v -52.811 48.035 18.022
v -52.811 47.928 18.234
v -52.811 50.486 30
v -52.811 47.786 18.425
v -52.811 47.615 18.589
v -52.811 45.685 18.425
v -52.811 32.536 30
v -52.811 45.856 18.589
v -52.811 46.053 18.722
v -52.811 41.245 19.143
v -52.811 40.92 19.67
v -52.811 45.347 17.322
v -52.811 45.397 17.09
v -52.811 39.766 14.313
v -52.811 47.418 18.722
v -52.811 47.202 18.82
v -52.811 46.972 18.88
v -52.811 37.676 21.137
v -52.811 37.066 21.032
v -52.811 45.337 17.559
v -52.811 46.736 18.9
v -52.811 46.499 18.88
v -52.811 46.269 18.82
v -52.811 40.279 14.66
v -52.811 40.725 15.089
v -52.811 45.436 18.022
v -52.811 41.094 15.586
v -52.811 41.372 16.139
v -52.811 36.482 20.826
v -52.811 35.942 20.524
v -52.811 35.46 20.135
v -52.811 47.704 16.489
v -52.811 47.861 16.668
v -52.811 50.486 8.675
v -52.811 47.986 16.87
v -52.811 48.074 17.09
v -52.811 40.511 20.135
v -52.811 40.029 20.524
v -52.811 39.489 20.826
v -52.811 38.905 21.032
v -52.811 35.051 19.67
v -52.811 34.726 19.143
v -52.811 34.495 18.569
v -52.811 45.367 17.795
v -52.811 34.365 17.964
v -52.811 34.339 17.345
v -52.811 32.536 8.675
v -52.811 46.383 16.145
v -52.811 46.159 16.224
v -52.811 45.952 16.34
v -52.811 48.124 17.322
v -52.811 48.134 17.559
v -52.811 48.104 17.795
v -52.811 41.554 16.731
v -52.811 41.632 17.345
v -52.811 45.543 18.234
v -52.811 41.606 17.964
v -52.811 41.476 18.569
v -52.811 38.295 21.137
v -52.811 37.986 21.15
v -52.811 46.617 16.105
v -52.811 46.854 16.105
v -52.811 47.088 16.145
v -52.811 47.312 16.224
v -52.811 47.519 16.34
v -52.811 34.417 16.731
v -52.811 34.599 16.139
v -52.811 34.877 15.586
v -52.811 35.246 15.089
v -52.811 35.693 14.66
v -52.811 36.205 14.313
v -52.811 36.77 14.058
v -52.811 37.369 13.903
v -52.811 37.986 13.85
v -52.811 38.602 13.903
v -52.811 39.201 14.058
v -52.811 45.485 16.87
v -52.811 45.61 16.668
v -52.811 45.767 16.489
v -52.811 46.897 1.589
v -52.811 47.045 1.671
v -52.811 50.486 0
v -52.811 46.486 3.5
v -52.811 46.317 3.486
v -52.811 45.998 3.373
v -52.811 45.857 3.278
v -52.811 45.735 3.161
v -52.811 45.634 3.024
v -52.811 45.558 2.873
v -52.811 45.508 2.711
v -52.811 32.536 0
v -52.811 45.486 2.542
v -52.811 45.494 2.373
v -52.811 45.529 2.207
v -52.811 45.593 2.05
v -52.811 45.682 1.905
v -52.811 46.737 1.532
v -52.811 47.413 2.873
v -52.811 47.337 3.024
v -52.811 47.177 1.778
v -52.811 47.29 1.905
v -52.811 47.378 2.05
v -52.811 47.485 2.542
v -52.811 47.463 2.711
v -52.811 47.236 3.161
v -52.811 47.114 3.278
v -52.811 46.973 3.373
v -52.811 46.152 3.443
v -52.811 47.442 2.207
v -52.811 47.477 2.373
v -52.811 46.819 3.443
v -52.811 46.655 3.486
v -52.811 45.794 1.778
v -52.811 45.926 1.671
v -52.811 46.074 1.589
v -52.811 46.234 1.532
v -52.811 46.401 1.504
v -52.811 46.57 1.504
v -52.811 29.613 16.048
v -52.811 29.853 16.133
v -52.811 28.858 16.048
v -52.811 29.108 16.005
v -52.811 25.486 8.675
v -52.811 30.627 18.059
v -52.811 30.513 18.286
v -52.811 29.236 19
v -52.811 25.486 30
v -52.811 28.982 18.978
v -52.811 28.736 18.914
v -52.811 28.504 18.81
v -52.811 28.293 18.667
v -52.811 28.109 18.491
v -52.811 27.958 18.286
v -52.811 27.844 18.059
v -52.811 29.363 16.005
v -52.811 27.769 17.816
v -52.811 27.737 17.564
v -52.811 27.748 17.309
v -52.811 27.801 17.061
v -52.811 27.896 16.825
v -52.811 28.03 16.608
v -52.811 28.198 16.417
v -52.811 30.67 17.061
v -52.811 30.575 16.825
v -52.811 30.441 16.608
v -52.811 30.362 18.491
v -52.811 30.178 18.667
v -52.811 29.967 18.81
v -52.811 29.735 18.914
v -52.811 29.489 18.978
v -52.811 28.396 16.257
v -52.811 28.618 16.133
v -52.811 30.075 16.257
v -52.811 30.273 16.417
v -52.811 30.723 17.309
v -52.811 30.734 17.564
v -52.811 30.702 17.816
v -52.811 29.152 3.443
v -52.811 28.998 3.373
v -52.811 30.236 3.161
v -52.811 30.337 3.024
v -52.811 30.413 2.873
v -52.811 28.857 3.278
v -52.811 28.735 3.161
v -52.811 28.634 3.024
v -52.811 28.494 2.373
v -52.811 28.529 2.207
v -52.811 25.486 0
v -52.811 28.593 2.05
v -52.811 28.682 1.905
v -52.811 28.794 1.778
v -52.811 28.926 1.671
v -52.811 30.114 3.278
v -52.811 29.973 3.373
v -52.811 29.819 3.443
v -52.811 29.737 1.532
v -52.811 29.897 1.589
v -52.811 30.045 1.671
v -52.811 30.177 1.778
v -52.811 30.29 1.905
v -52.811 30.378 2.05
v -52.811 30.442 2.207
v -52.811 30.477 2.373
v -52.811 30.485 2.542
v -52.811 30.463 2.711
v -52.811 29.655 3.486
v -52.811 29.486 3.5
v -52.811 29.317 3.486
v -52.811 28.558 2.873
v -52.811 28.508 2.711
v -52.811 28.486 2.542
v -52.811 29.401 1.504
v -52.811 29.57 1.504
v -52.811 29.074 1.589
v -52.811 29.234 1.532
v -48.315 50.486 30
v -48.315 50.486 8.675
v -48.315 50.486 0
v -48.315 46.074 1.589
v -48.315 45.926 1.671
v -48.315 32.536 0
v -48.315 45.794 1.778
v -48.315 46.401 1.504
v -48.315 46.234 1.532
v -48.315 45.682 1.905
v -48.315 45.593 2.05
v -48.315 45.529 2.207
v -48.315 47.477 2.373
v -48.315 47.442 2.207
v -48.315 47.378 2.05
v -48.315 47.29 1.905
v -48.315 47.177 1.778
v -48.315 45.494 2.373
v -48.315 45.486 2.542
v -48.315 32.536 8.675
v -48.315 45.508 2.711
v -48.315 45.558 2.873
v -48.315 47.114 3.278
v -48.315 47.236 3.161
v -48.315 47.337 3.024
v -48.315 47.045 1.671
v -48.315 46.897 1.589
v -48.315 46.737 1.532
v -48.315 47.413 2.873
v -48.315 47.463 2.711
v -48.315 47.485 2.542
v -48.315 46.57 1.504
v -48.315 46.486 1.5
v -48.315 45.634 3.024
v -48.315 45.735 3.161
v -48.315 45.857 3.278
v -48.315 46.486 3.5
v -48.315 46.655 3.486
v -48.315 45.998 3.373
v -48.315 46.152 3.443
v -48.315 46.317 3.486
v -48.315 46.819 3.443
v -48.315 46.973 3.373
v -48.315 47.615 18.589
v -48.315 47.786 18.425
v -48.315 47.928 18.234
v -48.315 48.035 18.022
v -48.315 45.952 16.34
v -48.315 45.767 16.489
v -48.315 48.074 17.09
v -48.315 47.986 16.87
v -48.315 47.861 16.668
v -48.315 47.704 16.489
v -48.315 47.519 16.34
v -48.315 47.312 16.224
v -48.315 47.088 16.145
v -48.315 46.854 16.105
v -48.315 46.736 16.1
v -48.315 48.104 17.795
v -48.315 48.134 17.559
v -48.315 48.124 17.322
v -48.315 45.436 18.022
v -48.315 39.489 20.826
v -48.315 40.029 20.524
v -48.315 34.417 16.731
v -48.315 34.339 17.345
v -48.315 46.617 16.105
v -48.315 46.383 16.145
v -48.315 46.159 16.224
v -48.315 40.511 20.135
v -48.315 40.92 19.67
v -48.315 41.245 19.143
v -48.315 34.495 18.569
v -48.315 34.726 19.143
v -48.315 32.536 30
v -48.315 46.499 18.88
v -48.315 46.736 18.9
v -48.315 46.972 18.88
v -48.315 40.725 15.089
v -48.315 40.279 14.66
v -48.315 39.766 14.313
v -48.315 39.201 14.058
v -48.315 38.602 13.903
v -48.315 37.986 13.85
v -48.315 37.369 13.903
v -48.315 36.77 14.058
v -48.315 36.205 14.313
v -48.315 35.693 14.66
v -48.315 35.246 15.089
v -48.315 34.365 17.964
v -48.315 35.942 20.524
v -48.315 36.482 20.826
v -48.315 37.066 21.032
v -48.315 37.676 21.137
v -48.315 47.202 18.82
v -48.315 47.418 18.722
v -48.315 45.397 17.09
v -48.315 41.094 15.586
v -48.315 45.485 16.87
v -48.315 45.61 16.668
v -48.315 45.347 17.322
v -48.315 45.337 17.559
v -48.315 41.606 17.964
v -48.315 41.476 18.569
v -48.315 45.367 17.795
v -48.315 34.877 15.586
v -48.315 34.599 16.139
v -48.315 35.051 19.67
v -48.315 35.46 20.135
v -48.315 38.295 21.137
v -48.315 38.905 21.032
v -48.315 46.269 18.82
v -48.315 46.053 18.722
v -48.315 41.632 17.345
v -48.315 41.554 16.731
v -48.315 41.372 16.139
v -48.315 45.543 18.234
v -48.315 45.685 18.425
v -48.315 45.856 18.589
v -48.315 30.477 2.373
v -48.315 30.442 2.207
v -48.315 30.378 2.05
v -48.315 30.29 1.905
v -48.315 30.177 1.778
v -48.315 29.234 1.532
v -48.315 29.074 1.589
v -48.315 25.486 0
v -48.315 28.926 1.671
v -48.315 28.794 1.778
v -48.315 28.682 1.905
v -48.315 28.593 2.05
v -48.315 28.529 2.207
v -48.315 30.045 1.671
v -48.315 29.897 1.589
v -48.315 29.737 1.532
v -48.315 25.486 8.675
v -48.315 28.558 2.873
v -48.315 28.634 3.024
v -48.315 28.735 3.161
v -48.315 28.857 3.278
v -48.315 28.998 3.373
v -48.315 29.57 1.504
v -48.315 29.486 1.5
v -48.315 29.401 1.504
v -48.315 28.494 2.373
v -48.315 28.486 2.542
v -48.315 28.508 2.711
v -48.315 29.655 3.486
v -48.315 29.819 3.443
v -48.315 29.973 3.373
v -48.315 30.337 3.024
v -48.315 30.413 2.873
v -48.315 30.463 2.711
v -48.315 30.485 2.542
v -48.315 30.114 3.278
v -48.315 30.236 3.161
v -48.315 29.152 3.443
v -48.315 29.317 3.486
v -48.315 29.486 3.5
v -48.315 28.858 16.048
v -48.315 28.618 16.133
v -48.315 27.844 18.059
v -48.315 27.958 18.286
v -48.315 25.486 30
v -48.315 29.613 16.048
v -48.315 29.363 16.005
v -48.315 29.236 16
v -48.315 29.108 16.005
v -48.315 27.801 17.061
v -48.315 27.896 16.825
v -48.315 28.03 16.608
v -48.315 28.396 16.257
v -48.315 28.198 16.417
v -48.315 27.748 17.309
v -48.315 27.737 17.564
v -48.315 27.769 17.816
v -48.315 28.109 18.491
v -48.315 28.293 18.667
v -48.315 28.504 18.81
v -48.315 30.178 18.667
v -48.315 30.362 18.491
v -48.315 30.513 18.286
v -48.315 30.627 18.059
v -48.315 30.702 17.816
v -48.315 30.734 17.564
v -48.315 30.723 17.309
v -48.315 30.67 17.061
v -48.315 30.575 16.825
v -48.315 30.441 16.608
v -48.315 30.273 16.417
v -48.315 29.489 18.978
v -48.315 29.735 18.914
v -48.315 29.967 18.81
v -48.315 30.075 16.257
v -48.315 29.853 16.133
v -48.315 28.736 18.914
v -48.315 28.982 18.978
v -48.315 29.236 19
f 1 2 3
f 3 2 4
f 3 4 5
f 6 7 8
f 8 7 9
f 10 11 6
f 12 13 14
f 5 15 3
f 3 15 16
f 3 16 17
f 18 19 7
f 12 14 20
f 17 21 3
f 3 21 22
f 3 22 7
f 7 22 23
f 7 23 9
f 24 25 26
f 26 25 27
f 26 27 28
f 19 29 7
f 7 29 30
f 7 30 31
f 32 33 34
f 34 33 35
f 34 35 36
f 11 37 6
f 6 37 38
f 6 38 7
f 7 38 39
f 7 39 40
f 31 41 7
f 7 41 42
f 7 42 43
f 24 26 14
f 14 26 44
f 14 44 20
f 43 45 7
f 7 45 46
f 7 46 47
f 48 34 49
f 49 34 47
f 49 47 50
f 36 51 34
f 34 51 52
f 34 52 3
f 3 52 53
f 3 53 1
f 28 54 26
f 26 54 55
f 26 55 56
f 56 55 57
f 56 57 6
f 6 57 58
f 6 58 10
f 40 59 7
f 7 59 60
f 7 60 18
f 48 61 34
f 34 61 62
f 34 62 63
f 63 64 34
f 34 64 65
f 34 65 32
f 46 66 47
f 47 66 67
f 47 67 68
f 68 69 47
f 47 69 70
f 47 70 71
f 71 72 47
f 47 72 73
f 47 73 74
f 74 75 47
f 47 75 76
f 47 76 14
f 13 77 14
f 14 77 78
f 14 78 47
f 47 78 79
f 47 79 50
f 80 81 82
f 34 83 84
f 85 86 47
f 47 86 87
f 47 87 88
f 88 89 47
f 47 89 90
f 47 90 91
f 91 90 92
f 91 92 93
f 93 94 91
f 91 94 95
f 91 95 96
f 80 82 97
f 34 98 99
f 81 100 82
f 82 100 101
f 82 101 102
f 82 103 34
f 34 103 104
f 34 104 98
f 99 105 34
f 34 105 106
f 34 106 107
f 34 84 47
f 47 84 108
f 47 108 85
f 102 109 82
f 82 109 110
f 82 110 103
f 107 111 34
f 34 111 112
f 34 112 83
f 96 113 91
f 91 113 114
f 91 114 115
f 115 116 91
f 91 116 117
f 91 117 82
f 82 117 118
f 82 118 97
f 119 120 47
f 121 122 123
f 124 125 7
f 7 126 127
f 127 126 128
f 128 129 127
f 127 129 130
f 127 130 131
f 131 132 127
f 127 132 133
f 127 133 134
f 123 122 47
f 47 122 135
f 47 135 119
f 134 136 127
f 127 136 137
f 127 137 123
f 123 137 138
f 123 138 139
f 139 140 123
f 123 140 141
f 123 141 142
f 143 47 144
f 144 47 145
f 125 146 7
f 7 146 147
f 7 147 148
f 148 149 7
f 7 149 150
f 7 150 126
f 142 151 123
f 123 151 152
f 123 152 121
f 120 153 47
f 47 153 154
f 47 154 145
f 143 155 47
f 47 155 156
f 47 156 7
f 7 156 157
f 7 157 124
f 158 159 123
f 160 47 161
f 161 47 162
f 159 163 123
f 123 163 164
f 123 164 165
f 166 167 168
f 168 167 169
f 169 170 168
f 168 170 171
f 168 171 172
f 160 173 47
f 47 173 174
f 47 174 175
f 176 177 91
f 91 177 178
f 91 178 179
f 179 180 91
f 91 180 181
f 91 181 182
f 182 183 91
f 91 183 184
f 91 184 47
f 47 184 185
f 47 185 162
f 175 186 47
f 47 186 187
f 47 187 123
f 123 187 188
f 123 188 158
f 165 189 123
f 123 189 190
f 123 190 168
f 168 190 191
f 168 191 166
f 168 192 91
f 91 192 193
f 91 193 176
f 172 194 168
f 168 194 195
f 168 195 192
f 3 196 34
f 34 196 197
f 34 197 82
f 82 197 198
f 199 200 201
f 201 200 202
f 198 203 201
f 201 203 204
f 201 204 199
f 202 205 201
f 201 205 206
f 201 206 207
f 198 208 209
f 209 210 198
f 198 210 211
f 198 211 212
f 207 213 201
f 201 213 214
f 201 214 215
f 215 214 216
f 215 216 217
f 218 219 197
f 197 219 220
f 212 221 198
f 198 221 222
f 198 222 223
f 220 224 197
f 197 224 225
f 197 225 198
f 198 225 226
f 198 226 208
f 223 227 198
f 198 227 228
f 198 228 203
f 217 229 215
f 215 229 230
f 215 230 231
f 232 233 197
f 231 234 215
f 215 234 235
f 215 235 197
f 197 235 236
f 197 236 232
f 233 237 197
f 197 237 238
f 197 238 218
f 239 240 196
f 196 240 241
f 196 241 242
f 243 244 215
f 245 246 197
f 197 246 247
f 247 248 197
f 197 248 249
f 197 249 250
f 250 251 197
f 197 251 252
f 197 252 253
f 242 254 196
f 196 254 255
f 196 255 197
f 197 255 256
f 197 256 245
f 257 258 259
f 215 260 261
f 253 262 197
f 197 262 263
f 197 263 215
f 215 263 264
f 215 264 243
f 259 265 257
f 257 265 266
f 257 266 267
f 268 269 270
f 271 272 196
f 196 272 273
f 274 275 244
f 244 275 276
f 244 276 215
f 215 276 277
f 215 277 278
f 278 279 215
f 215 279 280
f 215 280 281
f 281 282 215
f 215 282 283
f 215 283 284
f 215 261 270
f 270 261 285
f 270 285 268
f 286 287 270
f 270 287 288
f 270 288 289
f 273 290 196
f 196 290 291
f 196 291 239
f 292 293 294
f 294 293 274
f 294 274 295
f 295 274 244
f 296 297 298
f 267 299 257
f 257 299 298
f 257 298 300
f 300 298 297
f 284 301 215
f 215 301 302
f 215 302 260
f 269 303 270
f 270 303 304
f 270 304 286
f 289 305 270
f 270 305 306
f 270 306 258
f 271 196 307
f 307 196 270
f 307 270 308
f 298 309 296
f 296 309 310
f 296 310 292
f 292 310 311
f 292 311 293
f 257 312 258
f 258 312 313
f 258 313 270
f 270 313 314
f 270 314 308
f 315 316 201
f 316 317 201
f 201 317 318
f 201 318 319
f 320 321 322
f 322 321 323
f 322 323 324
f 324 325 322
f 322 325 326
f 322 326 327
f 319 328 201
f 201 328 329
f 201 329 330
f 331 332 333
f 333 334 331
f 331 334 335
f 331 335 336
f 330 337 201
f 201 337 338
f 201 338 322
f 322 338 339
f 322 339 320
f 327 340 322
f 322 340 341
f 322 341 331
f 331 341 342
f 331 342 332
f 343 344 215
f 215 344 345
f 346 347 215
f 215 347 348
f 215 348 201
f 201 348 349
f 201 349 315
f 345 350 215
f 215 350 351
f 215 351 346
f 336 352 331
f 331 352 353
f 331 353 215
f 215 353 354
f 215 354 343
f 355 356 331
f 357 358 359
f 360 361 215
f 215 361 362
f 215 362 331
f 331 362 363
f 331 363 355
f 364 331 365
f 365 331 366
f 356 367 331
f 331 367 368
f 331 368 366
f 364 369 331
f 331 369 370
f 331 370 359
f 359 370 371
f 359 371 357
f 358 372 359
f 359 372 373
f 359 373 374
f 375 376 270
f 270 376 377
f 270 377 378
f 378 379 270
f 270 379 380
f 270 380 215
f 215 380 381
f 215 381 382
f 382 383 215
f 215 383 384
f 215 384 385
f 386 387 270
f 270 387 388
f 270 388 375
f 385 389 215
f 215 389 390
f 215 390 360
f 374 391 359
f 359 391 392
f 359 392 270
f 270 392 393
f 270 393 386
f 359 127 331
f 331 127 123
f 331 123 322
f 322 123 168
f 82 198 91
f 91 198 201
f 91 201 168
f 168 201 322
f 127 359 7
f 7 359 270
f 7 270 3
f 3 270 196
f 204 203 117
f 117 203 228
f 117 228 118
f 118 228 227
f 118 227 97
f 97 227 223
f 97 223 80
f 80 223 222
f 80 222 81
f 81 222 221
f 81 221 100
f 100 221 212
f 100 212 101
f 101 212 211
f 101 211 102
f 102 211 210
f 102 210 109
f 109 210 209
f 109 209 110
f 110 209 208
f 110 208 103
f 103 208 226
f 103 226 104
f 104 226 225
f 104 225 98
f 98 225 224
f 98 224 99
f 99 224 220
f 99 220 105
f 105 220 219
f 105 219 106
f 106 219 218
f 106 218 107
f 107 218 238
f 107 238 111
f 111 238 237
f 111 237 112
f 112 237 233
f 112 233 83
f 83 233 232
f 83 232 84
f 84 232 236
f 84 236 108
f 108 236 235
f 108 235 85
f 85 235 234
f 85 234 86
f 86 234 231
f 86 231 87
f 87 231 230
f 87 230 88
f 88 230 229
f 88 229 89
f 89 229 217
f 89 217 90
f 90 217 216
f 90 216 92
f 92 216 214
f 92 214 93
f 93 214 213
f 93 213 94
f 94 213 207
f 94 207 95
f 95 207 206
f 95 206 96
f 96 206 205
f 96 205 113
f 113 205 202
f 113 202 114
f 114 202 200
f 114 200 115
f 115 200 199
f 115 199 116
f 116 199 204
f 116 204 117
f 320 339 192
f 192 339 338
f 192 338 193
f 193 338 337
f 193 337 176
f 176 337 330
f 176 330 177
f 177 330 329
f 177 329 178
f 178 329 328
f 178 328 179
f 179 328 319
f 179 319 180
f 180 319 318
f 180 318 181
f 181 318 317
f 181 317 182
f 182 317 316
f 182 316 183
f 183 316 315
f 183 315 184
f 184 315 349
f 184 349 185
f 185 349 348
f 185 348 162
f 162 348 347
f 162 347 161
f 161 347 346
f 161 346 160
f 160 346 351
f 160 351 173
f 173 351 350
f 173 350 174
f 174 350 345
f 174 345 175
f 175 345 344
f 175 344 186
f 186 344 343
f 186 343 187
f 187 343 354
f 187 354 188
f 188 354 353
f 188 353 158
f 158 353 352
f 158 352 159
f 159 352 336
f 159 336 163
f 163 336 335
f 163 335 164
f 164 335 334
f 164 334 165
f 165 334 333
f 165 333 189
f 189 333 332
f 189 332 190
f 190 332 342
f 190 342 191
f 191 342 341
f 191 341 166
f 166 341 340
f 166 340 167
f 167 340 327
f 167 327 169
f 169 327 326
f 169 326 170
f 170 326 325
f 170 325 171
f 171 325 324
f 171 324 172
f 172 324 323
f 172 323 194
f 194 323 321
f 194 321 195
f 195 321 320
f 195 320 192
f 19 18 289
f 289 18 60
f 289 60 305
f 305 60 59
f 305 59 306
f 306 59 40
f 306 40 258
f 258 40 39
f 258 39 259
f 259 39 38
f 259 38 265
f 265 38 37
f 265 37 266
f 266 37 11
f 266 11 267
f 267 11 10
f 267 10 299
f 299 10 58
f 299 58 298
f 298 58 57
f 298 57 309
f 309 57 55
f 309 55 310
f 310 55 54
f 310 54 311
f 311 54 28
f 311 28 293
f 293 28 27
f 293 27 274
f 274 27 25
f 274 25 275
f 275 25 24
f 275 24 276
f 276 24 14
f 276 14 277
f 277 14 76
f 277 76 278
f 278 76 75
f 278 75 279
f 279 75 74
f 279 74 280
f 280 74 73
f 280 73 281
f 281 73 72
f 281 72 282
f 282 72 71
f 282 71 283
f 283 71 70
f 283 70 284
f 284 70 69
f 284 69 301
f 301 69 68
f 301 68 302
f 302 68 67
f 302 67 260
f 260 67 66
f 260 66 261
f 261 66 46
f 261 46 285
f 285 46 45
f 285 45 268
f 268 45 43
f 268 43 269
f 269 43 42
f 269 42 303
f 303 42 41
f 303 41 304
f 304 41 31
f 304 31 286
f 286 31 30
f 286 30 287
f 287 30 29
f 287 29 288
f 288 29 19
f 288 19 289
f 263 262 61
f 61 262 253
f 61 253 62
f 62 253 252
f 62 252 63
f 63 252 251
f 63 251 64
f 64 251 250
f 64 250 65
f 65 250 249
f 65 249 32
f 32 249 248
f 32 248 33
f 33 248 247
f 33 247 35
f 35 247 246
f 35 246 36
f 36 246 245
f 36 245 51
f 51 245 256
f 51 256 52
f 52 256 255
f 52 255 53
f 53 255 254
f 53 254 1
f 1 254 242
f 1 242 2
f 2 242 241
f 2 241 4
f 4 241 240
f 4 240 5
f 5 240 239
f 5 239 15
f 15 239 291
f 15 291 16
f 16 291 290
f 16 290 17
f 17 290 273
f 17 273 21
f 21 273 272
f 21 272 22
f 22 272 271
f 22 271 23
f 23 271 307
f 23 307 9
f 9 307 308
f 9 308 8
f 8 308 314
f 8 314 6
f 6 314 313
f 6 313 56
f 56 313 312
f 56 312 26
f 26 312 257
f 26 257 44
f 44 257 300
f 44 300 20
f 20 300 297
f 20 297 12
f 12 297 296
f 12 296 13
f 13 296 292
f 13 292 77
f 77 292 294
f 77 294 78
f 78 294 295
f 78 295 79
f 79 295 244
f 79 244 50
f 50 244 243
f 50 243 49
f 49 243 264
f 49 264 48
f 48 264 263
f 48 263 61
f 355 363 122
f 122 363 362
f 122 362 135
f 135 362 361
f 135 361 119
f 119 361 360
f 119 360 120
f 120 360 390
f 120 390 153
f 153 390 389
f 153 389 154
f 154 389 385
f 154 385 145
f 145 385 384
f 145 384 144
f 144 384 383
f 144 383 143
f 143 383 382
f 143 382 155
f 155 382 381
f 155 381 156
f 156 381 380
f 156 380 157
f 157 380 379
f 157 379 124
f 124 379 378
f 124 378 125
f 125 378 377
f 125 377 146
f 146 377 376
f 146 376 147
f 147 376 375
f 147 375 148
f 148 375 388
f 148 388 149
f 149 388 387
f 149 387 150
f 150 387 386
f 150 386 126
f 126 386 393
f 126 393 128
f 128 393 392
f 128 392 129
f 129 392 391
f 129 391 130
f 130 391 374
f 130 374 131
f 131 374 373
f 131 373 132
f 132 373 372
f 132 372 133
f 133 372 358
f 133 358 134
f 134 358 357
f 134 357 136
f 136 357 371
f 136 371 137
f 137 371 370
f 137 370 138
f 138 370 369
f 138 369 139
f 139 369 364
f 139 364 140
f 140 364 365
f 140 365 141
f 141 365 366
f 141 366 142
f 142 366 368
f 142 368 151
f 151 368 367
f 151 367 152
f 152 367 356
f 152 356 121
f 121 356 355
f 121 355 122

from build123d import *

# Parameters (mm, degrees)
RESSALTO_EXTRUS_O2_DEPTH      = 25
RESSALTO_EXTRUS_O2_DEPTH_BACK = 5
ESBO_O5_W                     = 4.495494134
ESBO_O5_H                     = 25
ESBO_O6_R                     = 1
CORTE_EXTRUS_O3_DEPTH         = 10
ESBO_O7_R                     = 1
CORTE_EXTRUS_O4_DEPTH         = 10
ESBO_O8_R                     = 3.65
CORTE_EXTRUS_O5_DEPTH         = 10
ESBO_O9_R                     = 1.4
CORTE_EXTRUS_O6_DEPTH         = 10
ESBO_O10_R                    = 1.5
CORTE_EXTRUS_O7_DEPTH         = 10


with BuildPart() as part:
    # Esboço5 → Ressalto-extrusão2 (new, two sides: drawn at the far end of the back side and taken through both)
    with BuildSketch(Plane.XY.offset(5).offset(-RESSALTO_EXTRUS_O2_DEPTH_BACK)):
        with Locations((-50.563178661, 37.985502959)):
            Rectangle(ESBO_O5_W, ESBO_O5_H)
    extrude(amount=RESSALTO_EXTRUS_O2_DEPTH + RESSALTO_EXTRUS_O2_DEPTH_BACK)

    # Esboço6 → Corte-extrusão3 (cut)
    with BuildSketch(Plane.ZY.offset(52.810925728)):
        with Locations((2.5, 46.485502959)):
            Circle(ESBO_O6_R)
    extrude(amount=-CORTE_EXTRUS_O3_DEPTH, mode=Mode.SUBTRACT)

    # Esboço7 → Corte-extrusão4 (cut)
    with BuildSketch(Plane.ZY.offset(52.810925728)):
        with Locations((2.5, 29.485502959)):
            Circle(ESBO_O7_R)
    extrude(amount=-CORTE_EXTRUS_O4_DEPTH, mode=Mode.SUBTRACT)

    # Esboço8 → Corte-extrusão5 (cut)
    with BuildSketch(Plane(origin=(-48.315431594, 0, 0), x_dir=(0, 0, -1), z_dir=(1, 0, 0))):
        with Locations((-17.5, 37.985502959)):
            Circle(ESBO_O8_R)
    extrude(amount=-CORTE_EXTRUS_O5_DEPTH, mode=Mode.SUBTRACT)

    # Esboço9 → Corte-extrusão6 (cut)
    with BuildSketch(Plane.ZY.offset(52.810925728)):
        with Locations((17.5, 46.735502959)):
            Circle(ESBO_O9_R)
    extrude(amount=-CORTE_EXTRUS_O6_DEPTH, mode=Mode.SUBTRACT)

    # Esboço10 → Corte-extrusão7 (cut)
    with BuildSketch(Plane.ZY.offset(52.810925728)):
        with Locations((17.5, 29.235502959)):
            Circle(ESBO_O10_R)
    extrude(amount=-CORTE_EXTRUS_O7_DEPTH, mode=Mode.SUBTRACT)


solid = part.part
